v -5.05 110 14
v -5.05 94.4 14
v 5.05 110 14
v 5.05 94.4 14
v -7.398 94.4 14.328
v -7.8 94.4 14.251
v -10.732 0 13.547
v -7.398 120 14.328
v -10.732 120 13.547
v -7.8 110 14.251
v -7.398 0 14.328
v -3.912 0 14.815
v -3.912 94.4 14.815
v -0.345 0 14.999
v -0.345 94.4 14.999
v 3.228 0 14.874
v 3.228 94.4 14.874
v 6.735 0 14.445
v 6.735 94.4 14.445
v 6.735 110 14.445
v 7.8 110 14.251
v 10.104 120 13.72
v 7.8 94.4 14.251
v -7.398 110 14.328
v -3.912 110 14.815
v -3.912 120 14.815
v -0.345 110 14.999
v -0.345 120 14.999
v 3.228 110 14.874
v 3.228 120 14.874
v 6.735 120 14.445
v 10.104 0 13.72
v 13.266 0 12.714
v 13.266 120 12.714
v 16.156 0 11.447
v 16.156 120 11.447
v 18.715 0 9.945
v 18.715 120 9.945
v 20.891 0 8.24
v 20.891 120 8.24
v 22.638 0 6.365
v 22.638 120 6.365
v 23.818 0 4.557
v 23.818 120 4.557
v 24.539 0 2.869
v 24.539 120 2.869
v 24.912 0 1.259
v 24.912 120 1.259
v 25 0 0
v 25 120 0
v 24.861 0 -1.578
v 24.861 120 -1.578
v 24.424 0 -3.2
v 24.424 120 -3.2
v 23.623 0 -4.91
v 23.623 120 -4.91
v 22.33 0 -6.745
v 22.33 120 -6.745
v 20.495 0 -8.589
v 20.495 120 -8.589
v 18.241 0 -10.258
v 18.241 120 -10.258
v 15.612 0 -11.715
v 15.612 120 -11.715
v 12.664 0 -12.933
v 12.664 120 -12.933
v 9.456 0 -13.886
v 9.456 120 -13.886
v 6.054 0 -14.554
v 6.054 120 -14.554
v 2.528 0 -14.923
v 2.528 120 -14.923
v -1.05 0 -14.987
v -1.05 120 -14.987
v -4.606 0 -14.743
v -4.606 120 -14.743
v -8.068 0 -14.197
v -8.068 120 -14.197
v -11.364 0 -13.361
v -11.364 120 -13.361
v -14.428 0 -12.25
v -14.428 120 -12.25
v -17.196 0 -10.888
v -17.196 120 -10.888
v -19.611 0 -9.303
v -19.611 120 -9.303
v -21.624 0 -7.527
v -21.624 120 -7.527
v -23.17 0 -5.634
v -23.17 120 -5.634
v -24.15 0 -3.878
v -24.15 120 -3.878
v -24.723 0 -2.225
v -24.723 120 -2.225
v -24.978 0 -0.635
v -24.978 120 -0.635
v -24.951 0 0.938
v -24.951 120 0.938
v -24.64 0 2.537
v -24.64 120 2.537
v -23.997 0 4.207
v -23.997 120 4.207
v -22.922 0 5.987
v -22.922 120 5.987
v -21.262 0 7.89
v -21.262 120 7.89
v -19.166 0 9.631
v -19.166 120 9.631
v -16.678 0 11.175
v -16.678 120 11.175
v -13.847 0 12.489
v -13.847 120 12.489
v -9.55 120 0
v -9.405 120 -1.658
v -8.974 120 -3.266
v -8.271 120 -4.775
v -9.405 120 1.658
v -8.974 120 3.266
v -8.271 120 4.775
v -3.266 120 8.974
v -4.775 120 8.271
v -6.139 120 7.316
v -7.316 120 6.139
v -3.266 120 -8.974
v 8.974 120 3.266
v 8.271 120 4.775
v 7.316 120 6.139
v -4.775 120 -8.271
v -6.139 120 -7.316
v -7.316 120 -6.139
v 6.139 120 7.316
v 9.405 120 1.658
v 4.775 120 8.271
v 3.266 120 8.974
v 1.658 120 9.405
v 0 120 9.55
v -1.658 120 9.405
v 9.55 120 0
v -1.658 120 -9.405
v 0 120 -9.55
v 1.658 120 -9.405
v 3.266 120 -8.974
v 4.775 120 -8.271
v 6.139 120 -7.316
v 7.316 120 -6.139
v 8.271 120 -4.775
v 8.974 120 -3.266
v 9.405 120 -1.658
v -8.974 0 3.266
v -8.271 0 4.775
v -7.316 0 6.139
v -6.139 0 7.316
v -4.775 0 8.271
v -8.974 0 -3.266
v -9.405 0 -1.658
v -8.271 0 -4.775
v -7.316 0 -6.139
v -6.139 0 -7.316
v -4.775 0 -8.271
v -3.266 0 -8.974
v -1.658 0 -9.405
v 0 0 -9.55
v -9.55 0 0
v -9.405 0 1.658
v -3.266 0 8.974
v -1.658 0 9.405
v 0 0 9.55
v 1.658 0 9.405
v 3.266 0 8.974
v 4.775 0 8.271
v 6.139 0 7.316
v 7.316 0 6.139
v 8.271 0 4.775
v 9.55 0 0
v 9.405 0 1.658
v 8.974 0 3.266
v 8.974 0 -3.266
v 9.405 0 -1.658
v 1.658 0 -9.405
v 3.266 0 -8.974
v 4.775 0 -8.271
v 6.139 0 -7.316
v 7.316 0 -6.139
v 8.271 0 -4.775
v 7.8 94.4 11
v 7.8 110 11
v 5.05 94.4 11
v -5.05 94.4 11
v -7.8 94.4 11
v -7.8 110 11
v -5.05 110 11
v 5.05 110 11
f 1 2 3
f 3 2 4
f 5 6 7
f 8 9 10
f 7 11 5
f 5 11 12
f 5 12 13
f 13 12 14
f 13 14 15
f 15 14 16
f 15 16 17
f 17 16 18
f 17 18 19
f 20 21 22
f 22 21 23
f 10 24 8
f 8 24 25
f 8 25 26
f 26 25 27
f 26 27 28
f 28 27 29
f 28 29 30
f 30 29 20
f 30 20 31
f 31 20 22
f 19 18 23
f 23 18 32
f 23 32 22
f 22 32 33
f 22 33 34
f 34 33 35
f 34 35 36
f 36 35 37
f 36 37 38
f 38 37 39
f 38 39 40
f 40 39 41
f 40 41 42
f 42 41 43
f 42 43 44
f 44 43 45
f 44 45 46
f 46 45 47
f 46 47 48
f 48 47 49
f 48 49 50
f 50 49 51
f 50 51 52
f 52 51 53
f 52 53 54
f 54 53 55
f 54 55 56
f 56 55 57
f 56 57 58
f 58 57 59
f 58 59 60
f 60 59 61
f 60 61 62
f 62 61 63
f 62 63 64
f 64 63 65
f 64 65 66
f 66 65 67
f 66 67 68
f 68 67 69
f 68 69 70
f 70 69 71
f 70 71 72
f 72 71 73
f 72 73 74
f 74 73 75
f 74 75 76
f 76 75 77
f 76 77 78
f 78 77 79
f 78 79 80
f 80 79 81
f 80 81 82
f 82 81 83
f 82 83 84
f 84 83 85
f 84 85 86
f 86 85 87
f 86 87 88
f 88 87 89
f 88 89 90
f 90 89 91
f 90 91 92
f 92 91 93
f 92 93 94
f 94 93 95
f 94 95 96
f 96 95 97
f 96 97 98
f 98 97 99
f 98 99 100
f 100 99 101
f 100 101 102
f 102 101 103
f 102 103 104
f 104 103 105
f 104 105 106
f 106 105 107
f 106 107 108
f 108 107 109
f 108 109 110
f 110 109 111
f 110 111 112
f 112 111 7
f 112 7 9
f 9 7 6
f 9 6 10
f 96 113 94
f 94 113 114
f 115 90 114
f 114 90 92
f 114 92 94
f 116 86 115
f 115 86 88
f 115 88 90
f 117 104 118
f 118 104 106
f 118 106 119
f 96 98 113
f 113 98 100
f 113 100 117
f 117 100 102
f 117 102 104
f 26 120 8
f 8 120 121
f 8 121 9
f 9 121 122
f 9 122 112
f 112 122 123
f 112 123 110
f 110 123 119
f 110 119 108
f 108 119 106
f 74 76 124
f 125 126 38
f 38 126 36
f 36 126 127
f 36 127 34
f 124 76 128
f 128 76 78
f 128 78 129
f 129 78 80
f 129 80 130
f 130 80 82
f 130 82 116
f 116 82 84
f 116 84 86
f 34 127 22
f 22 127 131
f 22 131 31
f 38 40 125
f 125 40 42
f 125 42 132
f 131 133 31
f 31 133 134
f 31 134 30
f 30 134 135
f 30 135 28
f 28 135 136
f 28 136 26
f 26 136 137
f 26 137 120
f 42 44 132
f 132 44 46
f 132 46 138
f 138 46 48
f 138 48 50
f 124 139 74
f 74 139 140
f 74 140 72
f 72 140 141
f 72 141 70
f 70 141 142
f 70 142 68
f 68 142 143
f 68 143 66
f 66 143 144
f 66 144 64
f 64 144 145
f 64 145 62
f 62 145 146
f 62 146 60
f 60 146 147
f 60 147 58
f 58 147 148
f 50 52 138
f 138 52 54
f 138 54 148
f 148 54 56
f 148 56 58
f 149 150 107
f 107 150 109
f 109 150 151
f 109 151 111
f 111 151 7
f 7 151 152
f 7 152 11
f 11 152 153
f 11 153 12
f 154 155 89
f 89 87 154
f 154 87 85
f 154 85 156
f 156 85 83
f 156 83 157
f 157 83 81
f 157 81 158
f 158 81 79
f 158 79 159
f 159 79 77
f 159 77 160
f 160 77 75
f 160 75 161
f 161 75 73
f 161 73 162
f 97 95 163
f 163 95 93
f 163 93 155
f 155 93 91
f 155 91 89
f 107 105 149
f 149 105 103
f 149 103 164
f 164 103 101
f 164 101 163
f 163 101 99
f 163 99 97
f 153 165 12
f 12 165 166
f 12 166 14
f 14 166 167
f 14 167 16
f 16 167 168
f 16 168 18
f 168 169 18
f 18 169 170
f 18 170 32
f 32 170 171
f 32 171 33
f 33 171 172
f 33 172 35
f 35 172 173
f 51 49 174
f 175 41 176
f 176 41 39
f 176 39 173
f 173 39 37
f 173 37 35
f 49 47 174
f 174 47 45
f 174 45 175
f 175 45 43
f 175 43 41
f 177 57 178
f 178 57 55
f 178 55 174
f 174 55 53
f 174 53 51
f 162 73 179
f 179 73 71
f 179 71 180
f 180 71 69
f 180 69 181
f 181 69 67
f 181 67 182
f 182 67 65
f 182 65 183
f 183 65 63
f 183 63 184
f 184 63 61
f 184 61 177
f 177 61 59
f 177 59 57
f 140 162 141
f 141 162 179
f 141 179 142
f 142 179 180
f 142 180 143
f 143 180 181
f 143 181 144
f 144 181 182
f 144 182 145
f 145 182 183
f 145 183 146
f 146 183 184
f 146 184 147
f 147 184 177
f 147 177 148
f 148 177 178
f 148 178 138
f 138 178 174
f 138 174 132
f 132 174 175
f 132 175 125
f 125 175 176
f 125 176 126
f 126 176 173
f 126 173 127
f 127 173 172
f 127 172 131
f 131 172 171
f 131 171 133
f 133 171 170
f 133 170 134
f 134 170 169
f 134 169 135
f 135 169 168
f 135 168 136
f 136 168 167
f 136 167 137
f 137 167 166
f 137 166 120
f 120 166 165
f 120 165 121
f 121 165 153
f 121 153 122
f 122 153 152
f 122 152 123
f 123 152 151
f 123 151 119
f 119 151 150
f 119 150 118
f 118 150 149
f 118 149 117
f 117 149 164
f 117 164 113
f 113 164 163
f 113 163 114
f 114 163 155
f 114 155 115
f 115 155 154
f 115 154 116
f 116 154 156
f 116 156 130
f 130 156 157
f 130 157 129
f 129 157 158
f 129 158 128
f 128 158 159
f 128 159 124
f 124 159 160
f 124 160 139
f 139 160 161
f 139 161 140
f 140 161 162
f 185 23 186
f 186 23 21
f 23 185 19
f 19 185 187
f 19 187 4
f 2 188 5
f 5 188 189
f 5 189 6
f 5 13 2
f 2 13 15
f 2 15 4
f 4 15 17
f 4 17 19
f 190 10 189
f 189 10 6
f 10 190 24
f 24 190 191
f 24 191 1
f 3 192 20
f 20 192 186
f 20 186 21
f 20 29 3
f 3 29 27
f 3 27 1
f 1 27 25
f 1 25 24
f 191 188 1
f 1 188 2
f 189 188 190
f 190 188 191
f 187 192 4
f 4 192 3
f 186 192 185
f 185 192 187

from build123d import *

# Parameters (mm, degrees)
SKETCH_1_RX         = 25
SKETCH_1_RY         = 15
EXTRUDE_1_DEPTH     = 120
SKETCH_2_R          = 9.55
CUT_EXTRUDE_1_DEPTH = 120
CUT_EXTRUDE_START   = 15
SKETCH_3_W          = 15.6
SKETCH_3_H          = 15.6
CUT_EXTRUDE_3_DEPTH = 1
SKETCH_4_W          = 2.75
SKETCH_4_H          = 15.6
CUT_EXTRUDE_4_DEPTH = 3


with BuildPart() as part:
    # 草图1 → 凸台-拉伸1 (new body)
    with BuildSketch(Plane(origin=(0, 0, 0), x_dir=(1, 0, 0), z_dir=(0, 1, 0))):
        with Locations((0, 0)):
            Ellipse(SKETCH_1_RX, SKETCH_1_RY)
    extrude(amount=EXTRUDE_1_DEPTH)

    # 草图2 → 切除-拉伸1 (cut)
    with BuildSketch(Plane.XZ):
        with Locations(Location((0, 0, 0), (0, 0, 270))):
            Circle(SKETCH_2_R)
    extrude(amount=-CUT_EXTRUDE_1_DEPTH, mode=Mode.SUBTRACT)

    # 草图3 → 切除-拉伸3 (cut)
    with BuildSketch(Plane.XY.offset(CUT_EXTRUDE_START)):
        with Locations((0, 102.2)):
            Rectangle(SKETCH_3_W, SKETCH_3_H)
    extrude(amount=-CUT_EXTRUDE_3_DEPTH, mode=Mode.SUBTRACT)

    # 草图4 → 切除-拉伸4 (cut)
    with BuildSketch(Plane.XY.offset(14)):
        with Locations((-6.425, 102.2)):
            Rectangle(SKETCH_4_W, SKETCH_4_H)
        with Locations((6.425, 102.2)):
            Rectangle(SKETCH_4_W, SKETCH_4_H)
    extrude(amount=-CUT_EXTRUDE_4_DEPTH, mode=Mode.SUBTRACT)


solid = part.part
